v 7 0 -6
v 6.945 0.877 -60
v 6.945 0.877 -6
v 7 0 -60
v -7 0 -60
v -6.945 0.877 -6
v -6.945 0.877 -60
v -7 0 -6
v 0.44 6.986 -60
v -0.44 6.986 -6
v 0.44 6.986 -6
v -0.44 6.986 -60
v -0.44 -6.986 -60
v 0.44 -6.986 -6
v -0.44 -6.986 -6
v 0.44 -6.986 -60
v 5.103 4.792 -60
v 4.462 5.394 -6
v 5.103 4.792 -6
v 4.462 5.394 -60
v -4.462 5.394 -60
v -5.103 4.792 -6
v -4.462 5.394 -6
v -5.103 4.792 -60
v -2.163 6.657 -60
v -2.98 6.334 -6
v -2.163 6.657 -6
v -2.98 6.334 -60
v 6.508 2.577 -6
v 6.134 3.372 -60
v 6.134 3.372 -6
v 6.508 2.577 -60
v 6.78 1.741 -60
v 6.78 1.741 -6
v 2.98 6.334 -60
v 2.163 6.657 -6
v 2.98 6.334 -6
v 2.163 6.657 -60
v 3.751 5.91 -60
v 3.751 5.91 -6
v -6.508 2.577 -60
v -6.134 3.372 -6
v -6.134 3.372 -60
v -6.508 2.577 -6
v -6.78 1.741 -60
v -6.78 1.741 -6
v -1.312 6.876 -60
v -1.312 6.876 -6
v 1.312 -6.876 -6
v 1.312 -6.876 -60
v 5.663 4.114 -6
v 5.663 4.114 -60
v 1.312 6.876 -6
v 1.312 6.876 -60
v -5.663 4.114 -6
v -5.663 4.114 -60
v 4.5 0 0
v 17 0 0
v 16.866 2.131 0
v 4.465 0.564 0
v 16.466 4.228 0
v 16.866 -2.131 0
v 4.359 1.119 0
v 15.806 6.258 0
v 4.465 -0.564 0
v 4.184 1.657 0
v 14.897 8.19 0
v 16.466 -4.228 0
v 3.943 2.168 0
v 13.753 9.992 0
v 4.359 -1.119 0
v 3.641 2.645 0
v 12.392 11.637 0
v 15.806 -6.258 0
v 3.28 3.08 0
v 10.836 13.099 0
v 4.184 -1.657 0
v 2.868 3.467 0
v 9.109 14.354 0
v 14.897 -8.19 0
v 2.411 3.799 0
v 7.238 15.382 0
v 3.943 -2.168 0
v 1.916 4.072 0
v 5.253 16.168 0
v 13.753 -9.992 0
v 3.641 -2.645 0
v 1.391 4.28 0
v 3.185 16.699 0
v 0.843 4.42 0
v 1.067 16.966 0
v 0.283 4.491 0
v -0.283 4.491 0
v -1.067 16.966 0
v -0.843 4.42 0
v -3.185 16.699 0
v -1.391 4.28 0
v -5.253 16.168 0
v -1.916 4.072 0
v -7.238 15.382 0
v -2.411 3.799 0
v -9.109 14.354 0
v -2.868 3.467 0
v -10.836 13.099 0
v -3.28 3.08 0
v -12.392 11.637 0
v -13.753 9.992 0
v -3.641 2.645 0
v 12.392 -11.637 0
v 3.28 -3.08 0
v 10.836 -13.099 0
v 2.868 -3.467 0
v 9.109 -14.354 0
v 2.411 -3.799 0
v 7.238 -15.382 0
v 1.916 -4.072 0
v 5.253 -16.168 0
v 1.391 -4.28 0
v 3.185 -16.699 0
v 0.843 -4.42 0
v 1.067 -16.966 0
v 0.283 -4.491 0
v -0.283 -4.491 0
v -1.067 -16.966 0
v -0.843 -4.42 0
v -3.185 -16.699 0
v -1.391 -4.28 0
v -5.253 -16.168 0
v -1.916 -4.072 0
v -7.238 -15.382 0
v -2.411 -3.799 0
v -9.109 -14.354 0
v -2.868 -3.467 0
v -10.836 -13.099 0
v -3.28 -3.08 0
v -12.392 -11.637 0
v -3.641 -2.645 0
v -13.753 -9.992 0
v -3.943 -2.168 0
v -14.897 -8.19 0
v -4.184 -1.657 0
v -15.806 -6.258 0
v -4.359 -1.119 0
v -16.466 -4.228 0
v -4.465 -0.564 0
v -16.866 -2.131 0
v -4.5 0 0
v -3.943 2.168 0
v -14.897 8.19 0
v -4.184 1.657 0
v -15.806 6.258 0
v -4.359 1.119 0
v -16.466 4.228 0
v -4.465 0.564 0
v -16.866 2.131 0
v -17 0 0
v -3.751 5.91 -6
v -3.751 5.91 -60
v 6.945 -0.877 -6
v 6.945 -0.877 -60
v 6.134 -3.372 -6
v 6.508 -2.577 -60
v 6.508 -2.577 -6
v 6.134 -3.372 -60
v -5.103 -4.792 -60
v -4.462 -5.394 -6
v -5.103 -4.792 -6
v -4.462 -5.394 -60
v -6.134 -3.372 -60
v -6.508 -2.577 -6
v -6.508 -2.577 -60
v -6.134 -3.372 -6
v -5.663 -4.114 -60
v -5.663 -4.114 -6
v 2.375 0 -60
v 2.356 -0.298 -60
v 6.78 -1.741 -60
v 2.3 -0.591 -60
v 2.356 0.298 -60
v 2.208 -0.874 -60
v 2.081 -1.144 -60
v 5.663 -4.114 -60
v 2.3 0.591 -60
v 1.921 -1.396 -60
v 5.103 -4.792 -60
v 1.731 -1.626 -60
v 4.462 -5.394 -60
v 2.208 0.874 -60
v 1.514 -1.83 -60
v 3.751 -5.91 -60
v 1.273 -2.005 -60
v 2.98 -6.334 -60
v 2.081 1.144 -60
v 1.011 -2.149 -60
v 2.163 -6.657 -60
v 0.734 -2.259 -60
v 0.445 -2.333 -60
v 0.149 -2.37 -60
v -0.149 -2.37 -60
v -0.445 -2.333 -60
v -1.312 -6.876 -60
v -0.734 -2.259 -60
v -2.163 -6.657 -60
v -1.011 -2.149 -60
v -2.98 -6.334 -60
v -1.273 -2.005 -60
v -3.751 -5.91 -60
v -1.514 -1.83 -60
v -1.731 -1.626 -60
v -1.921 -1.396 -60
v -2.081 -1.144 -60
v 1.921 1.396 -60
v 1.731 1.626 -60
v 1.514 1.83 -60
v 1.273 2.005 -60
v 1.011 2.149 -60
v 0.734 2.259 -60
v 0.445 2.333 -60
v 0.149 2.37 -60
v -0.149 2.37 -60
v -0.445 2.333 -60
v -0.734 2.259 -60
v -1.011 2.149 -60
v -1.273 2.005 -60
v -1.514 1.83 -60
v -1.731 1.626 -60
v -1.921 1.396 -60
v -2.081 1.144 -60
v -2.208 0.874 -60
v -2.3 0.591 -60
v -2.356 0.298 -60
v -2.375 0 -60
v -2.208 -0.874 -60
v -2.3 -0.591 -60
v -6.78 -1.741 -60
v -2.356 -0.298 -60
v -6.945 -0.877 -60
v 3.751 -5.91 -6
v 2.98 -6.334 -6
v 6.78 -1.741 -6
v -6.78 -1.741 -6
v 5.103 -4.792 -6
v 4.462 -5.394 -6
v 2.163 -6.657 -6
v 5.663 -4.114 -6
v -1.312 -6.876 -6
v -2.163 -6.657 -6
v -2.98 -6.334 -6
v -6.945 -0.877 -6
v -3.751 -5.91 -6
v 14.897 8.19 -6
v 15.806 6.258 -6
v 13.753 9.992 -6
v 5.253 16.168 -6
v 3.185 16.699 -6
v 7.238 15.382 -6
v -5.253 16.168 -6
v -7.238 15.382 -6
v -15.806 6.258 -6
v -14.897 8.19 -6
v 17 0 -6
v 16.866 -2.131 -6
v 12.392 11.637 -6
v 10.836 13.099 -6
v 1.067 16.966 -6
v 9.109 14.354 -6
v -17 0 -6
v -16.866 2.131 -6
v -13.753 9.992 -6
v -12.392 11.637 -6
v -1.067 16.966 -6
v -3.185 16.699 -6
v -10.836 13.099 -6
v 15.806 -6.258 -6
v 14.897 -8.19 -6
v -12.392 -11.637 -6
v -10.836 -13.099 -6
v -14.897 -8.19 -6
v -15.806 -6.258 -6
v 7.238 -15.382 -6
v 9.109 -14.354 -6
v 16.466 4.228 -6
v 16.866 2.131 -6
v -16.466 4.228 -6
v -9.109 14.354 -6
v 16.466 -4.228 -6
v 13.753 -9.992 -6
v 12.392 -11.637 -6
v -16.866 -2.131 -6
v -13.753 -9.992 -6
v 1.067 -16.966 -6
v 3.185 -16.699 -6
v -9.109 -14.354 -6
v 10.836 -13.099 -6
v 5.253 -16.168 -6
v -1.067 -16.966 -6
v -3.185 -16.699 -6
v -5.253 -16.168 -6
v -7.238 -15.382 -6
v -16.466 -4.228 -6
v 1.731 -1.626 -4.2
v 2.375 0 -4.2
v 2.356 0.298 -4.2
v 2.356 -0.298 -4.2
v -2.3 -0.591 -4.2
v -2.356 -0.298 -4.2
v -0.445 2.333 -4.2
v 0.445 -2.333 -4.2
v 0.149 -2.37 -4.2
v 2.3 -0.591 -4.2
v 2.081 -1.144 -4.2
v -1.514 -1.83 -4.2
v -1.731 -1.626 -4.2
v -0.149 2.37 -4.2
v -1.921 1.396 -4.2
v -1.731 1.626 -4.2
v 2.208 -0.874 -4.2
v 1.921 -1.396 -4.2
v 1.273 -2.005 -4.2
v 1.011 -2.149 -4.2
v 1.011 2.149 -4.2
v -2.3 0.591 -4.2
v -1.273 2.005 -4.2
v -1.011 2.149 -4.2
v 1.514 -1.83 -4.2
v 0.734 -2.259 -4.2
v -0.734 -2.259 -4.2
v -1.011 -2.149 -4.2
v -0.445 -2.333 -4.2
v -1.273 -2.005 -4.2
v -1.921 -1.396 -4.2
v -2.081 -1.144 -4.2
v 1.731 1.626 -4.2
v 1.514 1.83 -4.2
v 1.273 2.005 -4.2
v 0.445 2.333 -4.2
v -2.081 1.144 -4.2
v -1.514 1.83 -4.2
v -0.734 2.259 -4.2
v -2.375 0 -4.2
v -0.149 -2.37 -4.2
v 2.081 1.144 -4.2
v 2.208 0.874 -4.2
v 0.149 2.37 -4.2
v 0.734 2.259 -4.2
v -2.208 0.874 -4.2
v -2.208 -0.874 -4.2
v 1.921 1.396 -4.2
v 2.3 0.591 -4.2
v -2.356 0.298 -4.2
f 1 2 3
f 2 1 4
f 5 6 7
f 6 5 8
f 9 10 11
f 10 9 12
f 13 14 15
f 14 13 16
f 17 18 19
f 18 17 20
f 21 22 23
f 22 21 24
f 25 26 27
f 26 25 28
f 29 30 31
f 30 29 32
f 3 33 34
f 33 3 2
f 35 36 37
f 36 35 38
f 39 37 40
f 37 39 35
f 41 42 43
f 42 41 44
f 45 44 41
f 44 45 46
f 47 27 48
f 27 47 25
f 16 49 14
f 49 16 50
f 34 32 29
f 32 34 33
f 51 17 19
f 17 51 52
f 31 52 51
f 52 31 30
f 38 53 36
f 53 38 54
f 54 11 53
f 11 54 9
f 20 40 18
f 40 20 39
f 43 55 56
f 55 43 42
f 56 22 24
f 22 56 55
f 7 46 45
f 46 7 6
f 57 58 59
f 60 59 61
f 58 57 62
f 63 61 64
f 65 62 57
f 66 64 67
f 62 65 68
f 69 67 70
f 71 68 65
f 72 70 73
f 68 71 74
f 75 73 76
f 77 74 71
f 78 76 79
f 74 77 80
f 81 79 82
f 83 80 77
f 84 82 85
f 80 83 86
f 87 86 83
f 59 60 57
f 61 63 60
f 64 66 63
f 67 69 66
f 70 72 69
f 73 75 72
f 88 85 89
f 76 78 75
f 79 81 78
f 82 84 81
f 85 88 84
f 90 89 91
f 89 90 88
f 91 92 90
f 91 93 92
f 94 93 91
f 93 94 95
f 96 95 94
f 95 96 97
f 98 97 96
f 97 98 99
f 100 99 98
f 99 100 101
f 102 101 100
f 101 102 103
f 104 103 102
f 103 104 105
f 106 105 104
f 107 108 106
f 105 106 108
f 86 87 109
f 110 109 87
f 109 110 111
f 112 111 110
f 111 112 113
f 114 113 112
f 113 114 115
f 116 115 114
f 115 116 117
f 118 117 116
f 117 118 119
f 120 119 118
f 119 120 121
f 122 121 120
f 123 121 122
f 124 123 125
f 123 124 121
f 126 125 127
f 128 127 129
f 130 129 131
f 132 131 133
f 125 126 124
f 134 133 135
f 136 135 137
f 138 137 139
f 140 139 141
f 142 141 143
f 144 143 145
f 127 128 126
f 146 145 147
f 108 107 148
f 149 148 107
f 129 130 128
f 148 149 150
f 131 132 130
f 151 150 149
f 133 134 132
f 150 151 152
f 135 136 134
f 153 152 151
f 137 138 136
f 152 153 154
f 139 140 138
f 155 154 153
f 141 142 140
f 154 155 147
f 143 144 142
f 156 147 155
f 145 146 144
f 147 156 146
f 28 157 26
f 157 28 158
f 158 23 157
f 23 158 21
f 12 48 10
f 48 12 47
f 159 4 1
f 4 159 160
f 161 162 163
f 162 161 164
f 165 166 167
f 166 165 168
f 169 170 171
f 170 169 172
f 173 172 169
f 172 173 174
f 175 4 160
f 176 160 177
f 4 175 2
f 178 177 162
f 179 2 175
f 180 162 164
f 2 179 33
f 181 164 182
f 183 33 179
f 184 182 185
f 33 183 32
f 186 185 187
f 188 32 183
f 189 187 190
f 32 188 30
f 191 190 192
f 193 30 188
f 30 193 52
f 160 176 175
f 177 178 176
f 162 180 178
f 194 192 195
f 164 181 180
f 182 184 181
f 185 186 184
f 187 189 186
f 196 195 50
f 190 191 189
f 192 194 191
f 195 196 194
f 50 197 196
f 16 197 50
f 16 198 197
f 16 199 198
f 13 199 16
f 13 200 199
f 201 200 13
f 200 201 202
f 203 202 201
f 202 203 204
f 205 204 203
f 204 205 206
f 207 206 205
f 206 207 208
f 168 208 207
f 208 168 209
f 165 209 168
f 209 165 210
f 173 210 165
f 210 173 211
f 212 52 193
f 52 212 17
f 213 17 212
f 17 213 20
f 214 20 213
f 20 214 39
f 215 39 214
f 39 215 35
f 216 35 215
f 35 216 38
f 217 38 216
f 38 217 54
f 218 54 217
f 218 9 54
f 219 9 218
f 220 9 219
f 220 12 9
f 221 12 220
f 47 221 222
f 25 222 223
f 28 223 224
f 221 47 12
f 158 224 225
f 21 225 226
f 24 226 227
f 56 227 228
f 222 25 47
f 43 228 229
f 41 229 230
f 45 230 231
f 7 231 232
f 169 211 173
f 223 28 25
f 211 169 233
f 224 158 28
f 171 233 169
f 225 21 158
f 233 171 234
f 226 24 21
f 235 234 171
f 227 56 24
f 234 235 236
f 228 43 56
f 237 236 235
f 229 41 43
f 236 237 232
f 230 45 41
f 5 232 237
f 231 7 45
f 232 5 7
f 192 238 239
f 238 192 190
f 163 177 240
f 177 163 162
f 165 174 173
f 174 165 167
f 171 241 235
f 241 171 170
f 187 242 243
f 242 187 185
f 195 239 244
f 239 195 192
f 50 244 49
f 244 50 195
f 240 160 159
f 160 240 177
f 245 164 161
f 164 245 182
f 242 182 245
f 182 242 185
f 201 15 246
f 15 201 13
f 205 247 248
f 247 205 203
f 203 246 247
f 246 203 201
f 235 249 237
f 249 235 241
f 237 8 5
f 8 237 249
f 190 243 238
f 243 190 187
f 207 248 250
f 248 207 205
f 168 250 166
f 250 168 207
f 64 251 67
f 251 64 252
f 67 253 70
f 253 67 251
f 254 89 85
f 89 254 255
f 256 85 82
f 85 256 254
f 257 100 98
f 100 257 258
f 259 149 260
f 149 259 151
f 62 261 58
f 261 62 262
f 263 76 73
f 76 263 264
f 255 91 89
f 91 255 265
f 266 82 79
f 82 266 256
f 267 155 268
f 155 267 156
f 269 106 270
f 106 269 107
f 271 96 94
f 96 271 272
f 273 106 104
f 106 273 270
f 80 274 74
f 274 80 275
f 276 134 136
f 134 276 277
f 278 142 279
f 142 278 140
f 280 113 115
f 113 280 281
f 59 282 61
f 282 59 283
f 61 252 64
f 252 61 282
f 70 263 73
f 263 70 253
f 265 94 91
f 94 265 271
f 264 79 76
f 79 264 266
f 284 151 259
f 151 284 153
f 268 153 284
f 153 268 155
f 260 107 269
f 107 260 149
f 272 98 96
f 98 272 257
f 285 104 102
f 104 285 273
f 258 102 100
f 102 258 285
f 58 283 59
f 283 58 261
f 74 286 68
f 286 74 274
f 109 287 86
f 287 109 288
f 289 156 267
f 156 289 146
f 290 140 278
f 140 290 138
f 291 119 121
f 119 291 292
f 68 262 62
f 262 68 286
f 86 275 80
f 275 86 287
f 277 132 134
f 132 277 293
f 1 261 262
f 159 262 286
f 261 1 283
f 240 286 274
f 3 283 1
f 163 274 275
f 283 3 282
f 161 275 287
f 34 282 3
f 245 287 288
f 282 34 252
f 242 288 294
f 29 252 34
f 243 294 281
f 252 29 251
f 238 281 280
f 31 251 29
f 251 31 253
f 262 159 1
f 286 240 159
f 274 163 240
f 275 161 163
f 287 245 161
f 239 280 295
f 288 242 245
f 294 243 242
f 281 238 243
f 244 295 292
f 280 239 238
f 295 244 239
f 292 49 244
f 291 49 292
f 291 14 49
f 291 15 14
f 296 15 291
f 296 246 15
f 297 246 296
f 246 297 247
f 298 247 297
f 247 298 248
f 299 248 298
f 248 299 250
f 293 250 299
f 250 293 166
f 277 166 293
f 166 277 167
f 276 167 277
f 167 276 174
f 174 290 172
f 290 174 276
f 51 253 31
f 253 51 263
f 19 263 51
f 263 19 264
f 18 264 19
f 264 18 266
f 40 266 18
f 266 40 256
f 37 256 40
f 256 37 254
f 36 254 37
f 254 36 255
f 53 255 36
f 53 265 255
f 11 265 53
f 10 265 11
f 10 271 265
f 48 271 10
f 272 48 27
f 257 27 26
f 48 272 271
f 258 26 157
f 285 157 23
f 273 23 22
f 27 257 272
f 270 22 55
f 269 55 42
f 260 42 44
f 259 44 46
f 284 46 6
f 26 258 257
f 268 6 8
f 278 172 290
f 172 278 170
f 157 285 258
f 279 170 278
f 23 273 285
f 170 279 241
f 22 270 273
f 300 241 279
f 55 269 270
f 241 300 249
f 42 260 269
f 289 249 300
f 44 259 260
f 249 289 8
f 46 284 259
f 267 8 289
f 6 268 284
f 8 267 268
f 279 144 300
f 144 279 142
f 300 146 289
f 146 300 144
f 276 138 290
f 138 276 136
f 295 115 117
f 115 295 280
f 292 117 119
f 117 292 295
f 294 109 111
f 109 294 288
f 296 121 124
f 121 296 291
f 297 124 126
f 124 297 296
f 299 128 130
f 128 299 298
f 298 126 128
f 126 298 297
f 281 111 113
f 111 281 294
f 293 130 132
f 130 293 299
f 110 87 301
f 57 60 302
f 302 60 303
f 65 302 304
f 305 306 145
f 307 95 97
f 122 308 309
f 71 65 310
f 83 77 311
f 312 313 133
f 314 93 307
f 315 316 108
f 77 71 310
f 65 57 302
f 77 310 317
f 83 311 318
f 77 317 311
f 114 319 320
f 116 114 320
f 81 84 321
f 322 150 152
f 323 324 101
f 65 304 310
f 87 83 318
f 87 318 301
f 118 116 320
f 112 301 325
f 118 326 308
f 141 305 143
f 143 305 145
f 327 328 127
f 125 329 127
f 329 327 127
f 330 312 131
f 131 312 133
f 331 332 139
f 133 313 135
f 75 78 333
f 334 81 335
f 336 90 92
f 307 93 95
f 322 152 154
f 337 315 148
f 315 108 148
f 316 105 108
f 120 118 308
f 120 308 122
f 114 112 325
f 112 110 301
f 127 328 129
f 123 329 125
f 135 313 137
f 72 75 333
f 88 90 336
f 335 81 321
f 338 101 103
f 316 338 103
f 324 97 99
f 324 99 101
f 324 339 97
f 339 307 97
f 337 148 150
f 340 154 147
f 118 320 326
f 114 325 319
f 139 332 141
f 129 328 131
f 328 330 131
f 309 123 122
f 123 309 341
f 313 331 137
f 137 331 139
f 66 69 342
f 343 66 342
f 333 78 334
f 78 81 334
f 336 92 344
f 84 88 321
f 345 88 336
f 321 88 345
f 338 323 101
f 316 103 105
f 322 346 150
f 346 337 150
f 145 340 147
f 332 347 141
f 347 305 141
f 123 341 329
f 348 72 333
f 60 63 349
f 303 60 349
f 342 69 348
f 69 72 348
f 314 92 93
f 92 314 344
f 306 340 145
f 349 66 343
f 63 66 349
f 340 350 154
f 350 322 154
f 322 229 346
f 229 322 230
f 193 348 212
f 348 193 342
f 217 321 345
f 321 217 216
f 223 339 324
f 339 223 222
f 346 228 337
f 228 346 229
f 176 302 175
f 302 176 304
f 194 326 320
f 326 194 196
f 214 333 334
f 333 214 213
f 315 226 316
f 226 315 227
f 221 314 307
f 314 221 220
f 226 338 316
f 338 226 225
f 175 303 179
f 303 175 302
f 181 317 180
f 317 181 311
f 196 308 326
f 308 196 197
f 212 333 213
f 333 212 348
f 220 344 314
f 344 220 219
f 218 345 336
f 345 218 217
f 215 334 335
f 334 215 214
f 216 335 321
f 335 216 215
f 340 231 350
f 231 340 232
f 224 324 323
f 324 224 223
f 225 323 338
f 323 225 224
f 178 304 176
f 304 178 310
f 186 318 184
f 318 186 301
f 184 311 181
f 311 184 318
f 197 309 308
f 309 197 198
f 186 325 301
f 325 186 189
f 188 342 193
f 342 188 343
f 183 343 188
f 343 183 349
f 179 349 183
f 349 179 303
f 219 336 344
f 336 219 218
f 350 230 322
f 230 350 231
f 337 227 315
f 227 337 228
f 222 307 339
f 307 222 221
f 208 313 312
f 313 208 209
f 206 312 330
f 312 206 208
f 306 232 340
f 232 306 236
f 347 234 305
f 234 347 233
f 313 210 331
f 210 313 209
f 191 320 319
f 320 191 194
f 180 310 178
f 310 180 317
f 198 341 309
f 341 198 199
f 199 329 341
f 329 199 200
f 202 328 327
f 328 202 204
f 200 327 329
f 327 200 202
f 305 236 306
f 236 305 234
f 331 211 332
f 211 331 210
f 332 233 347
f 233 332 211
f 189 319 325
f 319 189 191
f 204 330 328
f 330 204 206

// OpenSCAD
$fn = 50;


difference() {
	union() {
		translate(v = [0, 0, -60.0000000000]) {
			cylinder(h = 60, r = 7.0000000000);
		}
		translate(v = [0, 0, -6.0000000000]) {
			cylinder(h = 6, r = 17.0000000000);
		}
	}
	union() {
		translate(v = [0, 0, 0]) {
			rotate(a = [0, 0, 0]) {
				difference() {
					union() {
						#translate(v = [0, 0, -60.0000000000]) {
							cylinder(h = 60, r = 2.2500000000);
						}
						#translate(v = [0, 0, -4.2000000000]) {
							cylinder(h = 4.2000000000, r1 = 2.3750000000, r2 = 4.5000000000);
						}
						#translate(v = [0, 0, -60.0000000000]) {
							cylinder(h = 60, r = 2.3750000000);
						}
						#translate(v = [0, 0, -60.0000000000]) {
							cylinder(h = 60, r = 2.2500000000);
						}
					}
					union();
				}
			}
		}
	}
}
